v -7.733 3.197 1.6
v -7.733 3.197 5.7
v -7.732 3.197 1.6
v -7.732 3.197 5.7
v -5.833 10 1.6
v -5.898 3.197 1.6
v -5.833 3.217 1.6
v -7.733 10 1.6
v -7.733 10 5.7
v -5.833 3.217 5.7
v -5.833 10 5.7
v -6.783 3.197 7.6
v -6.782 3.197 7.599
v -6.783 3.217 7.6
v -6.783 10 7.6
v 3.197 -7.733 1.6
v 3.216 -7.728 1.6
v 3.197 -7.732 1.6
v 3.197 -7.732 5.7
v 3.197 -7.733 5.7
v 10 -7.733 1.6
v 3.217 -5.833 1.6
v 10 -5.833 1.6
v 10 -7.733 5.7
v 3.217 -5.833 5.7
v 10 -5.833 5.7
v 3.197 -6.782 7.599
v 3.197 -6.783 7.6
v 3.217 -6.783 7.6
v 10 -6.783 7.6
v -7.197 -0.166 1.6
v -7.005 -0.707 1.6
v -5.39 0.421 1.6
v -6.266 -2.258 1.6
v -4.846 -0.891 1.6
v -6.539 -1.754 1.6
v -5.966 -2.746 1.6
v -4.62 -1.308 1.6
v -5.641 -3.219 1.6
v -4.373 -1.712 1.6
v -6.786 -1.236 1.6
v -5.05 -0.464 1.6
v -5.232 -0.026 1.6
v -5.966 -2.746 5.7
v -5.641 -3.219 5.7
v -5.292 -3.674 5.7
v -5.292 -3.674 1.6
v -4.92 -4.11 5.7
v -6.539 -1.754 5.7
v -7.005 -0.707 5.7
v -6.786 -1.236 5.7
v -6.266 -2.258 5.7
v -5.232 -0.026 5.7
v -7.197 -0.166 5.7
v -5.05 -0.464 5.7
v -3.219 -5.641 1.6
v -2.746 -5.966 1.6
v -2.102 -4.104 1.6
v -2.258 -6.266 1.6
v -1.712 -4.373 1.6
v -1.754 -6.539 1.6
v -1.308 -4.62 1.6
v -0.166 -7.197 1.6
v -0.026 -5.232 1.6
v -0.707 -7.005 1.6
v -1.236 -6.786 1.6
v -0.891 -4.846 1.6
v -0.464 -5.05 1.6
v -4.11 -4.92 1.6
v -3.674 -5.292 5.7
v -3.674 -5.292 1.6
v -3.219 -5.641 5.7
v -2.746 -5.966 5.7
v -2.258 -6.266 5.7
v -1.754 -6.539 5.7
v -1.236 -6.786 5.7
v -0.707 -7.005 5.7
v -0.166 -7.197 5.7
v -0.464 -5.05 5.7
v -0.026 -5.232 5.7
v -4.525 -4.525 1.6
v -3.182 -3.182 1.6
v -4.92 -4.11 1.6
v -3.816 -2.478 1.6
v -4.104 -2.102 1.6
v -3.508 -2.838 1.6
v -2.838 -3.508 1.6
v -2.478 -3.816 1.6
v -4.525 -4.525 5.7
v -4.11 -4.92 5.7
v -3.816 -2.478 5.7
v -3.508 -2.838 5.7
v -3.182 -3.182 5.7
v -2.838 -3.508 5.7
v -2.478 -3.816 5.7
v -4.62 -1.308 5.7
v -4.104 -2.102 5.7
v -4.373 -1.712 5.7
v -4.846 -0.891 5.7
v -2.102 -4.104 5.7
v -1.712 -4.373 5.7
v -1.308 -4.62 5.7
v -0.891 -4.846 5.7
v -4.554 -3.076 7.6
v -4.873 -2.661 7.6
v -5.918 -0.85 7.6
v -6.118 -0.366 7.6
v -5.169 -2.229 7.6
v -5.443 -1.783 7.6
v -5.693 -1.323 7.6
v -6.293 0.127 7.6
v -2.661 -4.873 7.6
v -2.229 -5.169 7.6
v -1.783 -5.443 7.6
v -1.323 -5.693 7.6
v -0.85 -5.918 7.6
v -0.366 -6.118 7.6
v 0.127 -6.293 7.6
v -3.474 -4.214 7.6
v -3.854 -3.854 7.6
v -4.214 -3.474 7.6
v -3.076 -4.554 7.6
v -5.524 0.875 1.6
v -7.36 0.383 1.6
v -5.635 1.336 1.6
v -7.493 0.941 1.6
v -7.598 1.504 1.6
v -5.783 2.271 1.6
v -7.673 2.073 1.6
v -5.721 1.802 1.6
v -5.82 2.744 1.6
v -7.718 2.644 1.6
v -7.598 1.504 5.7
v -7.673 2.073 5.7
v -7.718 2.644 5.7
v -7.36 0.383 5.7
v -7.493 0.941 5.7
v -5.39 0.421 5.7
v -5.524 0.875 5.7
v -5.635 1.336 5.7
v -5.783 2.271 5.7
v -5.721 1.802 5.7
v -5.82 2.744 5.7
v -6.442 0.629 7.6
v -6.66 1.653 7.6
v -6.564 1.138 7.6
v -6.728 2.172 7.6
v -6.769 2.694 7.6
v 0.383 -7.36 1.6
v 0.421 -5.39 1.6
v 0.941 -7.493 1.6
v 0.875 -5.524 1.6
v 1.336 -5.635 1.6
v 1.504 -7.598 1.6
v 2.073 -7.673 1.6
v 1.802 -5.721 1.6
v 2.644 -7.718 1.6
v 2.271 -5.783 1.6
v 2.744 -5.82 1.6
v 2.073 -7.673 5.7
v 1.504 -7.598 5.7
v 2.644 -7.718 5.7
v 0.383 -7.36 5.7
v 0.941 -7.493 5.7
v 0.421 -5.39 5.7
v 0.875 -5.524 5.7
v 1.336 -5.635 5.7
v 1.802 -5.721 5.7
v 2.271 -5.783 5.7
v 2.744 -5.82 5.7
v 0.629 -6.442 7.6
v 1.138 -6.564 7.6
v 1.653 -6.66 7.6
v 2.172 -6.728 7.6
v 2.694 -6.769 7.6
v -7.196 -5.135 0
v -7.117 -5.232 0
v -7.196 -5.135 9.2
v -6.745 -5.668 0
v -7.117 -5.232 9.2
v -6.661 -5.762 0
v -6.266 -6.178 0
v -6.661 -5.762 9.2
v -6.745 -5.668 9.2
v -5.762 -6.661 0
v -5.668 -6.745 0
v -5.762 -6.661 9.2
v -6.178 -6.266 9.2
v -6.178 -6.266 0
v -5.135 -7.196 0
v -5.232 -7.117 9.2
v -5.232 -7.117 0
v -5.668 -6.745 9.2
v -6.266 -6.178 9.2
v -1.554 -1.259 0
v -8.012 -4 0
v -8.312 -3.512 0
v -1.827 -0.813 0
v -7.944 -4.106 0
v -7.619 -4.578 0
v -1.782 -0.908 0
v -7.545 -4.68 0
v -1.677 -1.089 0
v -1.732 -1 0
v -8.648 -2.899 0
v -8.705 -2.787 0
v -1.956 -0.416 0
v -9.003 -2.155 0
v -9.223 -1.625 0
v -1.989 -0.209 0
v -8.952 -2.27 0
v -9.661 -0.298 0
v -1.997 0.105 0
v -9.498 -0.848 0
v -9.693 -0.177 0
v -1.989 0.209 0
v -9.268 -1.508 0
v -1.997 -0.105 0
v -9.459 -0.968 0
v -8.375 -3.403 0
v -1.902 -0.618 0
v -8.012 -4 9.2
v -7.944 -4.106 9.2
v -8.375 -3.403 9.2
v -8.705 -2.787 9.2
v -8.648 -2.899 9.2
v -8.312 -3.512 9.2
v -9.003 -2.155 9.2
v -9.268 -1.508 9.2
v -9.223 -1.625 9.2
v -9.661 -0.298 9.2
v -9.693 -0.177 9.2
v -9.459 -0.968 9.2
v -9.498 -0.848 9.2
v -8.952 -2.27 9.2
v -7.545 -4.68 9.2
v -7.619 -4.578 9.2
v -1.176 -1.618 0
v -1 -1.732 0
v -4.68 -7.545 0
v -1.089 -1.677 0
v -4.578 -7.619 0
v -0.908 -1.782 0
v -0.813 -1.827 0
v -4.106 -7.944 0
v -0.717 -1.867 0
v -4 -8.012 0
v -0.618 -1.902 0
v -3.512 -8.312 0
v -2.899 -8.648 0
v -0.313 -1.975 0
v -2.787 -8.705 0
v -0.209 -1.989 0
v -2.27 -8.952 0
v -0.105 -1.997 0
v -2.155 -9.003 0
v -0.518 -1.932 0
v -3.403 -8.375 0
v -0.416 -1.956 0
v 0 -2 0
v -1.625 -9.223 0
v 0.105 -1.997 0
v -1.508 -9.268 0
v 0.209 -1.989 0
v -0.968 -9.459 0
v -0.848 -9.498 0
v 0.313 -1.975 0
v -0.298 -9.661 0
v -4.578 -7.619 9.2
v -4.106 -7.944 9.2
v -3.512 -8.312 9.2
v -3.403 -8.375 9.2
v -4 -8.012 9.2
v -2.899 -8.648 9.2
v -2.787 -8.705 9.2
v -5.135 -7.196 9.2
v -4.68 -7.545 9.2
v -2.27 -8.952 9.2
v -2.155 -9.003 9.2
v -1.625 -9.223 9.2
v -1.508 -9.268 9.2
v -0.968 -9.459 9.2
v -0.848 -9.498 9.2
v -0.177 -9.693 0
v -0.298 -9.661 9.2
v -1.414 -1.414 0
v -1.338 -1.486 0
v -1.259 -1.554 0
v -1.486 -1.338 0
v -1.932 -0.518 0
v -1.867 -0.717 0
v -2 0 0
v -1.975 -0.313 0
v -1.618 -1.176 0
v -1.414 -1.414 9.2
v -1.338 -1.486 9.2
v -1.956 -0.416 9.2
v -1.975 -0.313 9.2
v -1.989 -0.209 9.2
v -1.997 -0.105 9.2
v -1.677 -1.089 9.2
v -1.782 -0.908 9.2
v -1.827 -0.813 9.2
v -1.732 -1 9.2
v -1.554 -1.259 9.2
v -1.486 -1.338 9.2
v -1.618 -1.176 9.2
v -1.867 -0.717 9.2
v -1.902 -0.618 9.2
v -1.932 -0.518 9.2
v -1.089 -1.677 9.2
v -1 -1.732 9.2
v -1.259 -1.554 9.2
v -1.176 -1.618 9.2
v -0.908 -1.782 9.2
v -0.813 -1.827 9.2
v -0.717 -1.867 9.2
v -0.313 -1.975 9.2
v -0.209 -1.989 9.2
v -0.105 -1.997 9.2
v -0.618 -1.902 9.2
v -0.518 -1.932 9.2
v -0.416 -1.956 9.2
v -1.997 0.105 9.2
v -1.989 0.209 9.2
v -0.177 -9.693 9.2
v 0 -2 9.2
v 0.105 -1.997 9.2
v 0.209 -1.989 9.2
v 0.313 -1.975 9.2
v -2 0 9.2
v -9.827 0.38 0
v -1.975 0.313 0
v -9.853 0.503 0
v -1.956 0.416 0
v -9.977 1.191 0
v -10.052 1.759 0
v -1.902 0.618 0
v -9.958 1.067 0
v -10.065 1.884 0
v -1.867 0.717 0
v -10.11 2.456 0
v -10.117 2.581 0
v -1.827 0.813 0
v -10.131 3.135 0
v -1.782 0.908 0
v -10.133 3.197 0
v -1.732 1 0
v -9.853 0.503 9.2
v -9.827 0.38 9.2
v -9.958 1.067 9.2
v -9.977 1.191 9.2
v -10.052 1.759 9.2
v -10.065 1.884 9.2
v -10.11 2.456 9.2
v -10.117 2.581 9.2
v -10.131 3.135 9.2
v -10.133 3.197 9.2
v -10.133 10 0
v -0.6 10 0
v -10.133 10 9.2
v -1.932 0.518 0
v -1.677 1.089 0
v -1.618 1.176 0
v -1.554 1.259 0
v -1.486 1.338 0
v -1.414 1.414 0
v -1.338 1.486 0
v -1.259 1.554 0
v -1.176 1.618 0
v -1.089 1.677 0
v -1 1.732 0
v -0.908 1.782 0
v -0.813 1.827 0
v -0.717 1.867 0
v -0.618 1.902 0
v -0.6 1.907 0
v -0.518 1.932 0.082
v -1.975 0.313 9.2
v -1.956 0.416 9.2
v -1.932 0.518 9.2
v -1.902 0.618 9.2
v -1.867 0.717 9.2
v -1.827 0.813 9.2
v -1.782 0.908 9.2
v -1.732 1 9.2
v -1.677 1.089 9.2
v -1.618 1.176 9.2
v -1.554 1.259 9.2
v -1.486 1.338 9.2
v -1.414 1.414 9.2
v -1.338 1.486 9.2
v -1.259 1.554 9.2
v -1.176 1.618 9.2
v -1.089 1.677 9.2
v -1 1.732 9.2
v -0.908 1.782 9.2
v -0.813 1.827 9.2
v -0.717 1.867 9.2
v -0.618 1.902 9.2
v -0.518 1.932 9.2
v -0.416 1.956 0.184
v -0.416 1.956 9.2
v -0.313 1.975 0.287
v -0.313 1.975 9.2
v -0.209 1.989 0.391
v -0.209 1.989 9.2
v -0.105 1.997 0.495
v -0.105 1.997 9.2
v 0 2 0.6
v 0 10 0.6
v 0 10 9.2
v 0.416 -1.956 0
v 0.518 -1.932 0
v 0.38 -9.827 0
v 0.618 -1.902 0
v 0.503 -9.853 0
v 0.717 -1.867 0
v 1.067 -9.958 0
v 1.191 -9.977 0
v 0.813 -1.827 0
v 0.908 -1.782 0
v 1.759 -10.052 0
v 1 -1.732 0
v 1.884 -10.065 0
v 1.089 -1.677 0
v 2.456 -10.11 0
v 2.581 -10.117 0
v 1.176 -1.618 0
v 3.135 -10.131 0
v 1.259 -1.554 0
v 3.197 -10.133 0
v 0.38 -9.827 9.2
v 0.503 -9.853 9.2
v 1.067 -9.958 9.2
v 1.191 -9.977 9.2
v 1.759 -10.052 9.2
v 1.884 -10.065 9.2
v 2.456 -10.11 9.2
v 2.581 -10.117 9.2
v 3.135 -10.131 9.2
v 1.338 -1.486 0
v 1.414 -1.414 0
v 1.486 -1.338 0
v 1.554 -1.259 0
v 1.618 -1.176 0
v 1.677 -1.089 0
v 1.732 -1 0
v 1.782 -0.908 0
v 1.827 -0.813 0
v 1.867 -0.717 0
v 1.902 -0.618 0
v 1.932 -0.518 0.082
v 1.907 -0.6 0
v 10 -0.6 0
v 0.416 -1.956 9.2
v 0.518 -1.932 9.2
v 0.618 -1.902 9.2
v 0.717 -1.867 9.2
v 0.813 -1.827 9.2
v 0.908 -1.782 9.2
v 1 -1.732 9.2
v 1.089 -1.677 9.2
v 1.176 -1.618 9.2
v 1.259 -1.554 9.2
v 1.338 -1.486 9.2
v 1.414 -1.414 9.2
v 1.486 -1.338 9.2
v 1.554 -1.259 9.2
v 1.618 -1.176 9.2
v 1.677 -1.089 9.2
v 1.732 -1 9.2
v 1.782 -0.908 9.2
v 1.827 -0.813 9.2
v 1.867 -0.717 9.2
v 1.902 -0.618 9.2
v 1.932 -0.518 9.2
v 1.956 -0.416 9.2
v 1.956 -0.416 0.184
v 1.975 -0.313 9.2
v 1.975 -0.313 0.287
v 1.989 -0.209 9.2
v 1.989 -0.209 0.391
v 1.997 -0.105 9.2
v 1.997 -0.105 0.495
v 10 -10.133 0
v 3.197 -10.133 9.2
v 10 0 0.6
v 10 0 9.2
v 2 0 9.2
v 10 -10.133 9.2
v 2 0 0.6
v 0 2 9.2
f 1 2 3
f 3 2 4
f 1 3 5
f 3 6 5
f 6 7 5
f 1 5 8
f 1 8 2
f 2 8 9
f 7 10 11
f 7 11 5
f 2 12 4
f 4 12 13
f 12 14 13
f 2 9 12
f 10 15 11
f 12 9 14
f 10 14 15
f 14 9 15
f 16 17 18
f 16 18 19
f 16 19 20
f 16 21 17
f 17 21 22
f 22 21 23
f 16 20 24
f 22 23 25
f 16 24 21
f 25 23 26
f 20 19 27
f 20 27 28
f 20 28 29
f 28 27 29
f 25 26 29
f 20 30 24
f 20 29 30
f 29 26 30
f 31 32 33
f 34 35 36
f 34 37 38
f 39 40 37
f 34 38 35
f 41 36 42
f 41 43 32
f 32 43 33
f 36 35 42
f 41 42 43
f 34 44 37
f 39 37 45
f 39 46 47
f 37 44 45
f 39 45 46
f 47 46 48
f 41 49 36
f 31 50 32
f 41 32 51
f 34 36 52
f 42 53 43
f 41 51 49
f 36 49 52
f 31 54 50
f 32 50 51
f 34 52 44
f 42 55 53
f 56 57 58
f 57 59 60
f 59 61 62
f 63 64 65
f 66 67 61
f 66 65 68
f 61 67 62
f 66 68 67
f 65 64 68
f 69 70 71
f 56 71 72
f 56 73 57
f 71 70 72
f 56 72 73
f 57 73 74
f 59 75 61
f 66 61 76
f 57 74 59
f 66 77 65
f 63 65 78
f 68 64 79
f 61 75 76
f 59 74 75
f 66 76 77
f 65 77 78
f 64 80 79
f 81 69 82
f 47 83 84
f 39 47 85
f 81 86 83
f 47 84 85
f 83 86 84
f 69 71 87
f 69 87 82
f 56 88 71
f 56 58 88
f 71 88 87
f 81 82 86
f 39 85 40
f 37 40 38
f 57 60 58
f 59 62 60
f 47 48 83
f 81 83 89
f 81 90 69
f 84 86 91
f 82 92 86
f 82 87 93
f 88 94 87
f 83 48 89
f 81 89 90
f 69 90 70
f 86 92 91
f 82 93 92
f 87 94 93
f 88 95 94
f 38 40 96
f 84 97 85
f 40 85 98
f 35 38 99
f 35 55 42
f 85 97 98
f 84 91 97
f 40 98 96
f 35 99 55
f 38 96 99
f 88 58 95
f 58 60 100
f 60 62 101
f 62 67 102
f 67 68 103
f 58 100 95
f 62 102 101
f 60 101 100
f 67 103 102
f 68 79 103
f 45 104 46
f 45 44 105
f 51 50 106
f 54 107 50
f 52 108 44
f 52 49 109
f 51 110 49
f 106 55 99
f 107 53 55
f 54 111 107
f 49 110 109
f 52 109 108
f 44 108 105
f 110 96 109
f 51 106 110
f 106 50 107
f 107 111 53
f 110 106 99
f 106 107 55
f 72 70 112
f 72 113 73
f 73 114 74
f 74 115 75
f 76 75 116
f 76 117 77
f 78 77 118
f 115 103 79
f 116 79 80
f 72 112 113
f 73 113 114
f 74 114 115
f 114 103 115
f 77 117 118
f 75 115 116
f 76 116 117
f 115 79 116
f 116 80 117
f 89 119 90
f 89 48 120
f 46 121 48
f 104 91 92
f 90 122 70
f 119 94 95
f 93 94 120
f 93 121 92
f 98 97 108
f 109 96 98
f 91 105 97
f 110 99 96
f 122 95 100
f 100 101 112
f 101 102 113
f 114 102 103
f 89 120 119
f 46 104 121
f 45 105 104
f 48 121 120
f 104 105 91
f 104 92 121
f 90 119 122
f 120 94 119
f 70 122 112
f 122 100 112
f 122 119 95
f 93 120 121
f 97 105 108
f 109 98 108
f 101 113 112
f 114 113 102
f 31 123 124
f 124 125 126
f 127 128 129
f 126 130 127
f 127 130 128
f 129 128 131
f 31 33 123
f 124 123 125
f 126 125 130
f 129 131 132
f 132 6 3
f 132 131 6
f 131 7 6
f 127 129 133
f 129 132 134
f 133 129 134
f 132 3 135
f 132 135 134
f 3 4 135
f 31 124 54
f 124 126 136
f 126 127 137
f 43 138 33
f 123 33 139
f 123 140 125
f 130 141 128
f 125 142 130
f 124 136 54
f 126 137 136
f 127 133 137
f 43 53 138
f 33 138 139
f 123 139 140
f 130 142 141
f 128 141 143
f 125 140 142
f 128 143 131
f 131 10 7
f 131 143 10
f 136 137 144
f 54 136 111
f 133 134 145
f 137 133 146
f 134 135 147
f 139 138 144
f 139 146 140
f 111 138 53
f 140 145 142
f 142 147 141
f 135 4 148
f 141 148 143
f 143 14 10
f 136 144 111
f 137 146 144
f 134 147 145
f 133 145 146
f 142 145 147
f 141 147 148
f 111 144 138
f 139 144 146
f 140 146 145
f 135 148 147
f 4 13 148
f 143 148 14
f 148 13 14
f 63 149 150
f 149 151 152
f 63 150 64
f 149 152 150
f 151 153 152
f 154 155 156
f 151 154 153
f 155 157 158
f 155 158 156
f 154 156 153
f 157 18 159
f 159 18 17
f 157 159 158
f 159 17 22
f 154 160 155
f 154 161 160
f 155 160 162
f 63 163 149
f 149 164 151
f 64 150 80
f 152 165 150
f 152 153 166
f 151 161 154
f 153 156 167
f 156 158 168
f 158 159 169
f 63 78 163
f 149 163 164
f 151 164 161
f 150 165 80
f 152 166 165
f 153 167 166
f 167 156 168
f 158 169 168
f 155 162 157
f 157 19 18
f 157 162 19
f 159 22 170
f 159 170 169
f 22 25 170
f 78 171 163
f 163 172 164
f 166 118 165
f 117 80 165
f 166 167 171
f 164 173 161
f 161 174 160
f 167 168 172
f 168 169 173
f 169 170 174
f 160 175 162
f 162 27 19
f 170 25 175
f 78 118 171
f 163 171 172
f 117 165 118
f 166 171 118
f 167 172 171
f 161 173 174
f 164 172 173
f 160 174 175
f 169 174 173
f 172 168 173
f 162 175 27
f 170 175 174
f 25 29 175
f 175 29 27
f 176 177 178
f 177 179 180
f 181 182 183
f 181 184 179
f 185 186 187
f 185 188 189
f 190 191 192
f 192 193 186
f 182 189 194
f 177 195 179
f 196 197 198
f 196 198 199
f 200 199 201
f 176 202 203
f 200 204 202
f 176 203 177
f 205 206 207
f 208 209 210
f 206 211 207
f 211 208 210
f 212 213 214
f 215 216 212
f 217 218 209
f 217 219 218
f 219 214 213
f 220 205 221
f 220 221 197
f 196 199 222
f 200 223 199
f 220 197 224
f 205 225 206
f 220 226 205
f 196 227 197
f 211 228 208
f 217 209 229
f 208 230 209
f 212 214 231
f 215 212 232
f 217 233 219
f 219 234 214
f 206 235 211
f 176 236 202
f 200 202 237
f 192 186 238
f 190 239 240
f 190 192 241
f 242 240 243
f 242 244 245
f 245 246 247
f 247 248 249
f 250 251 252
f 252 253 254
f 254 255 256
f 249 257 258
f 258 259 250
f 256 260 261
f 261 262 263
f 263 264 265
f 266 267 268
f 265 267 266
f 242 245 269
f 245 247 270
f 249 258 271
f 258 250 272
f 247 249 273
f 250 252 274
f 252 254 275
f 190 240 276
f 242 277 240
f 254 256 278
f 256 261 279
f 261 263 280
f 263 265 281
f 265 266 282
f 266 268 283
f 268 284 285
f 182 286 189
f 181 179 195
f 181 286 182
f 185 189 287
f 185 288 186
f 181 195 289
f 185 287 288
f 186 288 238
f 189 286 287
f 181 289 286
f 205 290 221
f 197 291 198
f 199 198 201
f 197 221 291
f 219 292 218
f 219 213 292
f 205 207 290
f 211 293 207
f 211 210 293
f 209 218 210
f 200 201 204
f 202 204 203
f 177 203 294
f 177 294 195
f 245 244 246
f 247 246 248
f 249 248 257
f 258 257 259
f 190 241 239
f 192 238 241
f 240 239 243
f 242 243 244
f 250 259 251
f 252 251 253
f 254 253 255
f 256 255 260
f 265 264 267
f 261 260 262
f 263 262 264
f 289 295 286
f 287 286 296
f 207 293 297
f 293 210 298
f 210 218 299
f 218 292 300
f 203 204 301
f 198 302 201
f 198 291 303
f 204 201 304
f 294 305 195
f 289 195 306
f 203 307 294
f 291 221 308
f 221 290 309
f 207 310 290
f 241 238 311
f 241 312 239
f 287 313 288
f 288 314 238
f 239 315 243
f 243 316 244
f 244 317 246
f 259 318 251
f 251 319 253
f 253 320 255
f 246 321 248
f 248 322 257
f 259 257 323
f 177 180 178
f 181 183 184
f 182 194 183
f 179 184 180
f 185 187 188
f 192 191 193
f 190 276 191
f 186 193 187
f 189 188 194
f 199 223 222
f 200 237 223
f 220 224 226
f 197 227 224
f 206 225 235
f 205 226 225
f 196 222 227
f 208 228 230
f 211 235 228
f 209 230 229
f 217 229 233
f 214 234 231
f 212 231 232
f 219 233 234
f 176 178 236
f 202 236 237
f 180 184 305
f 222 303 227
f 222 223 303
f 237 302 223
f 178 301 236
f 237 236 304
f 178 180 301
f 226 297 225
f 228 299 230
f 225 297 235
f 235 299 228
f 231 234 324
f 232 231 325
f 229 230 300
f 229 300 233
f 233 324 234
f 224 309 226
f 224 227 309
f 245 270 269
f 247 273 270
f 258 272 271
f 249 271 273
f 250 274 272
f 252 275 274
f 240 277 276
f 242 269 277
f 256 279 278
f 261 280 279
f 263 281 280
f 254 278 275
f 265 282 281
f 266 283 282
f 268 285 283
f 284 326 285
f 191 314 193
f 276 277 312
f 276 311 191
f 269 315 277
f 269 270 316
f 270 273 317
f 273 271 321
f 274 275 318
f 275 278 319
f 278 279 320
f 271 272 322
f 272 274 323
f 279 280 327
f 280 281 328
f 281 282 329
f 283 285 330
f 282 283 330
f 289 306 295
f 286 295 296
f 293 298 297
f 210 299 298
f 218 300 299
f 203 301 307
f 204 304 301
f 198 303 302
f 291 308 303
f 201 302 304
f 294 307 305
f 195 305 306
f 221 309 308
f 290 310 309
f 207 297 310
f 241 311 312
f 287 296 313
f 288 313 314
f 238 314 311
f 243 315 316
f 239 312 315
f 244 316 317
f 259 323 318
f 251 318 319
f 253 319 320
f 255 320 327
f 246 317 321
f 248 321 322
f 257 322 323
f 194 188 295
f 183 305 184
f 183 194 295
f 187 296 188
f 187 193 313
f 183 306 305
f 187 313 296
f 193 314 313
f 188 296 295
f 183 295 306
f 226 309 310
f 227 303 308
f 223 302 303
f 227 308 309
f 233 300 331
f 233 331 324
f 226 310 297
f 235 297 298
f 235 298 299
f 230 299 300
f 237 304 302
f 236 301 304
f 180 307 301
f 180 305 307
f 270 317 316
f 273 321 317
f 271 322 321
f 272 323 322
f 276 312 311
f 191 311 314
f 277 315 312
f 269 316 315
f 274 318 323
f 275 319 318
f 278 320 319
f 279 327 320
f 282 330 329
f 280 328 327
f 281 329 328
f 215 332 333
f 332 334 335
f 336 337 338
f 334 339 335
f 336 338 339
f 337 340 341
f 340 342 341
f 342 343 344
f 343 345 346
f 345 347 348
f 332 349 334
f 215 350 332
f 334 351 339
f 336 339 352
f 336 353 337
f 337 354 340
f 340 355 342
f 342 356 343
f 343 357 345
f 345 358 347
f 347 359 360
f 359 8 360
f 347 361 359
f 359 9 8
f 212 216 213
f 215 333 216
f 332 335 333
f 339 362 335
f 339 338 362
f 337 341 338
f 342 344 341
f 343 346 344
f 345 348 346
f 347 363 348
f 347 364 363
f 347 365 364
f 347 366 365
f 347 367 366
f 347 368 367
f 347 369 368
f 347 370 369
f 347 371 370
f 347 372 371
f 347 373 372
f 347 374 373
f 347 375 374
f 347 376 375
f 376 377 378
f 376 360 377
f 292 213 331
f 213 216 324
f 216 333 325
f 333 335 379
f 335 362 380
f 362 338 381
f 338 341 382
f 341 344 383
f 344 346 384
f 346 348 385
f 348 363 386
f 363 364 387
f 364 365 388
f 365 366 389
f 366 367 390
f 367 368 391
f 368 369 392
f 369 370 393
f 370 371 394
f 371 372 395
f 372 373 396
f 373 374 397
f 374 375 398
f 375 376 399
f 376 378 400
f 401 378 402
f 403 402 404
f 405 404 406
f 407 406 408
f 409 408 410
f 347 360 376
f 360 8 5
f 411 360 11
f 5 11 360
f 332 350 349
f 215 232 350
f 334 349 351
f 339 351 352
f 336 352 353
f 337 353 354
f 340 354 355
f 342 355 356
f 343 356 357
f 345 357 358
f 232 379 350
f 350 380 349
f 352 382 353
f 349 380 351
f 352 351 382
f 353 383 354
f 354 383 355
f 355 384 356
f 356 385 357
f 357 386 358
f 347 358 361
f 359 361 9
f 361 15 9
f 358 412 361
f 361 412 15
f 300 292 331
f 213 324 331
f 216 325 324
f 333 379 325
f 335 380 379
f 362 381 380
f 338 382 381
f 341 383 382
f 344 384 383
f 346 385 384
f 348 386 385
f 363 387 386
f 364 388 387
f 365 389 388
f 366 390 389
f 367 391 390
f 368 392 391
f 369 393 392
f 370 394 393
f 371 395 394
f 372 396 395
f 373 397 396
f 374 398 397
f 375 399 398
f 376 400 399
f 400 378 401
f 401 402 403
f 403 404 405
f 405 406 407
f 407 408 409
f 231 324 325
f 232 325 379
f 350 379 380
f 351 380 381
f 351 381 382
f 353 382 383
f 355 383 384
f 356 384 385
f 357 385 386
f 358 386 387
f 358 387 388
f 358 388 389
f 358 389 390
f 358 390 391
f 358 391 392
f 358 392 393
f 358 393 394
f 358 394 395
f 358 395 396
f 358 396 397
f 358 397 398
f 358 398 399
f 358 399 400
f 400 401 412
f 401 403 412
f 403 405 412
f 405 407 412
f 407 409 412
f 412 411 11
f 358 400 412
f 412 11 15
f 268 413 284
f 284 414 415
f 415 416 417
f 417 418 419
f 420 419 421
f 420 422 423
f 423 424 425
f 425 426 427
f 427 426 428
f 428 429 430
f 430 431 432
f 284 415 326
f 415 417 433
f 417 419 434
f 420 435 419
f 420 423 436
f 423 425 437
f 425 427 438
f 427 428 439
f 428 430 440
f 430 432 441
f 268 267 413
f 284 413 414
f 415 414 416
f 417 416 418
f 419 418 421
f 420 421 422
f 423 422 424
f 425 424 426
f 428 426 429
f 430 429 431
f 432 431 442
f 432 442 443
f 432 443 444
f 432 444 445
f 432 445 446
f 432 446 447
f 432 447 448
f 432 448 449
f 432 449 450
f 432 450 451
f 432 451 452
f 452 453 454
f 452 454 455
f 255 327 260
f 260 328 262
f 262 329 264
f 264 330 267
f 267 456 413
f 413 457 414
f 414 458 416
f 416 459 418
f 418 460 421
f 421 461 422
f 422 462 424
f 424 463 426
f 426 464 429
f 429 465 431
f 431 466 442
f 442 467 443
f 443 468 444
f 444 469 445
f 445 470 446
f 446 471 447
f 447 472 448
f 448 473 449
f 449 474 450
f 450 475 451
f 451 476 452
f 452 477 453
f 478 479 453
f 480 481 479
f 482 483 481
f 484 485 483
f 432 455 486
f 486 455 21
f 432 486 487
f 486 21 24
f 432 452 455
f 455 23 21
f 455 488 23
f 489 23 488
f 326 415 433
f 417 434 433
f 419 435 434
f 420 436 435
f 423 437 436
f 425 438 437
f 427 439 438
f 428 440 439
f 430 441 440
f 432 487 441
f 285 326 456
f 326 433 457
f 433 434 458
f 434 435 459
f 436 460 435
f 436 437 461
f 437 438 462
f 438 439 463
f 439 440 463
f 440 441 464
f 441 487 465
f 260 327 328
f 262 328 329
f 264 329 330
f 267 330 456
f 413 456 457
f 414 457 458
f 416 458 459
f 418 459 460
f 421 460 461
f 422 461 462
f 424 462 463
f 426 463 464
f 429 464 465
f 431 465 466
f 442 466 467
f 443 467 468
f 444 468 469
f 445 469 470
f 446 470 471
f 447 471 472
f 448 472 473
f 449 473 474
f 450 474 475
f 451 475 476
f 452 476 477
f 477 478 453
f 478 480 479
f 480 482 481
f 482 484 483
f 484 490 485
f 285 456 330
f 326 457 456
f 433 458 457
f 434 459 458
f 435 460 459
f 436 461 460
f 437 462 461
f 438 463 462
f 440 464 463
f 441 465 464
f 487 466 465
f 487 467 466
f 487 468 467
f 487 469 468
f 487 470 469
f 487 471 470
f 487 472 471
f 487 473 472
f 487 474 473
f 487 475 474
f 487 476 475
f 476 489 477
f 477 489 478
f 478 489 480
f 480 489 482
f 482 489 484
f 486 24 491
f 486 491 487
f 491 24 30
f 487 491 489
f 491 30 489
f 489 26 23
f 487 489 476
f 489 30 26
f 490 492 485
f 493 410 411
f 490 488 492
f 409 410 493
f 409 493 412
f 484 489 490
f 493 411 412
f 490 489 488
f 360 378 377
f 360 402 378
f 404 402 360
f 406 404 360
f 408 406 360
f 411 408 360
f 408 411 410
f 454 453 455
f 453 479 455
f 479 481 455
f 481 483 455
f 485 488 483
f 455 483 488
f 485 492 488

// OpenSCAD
// ============================================================
// Zip tie corner blocks — a corner shoe that carries a zip
// tie around a square object without letting it grab the
// corner
//
// A zip tie pulled around a square object touches it at four
// points, one per corner. The tie tries to be a circle, the
// object is a square, and what is left is a squircle with the
// square inscribed in it: all the tension lands on four
// corners, and the tie itself is what digs into them.
//
// This block sits on one corner. It is a thick right angle
// with two flat inner faces that bear on the object's two
// flats, and a curved channel running through it that the tie
// is threaded through. The tie is still allowed to take the
// curve it wants — it just takes it inside the channel, and
// the block turns that curve into pressure spread along the
// two flats. Four of them make the tie a rounded square
// instead of a squircle.
//
// A circular relief is knocked out of the inner corner so the
// block never bears on the corner itself. A printed internal
// corner is never sharp, and a real corner may carry a weld, a
// seam, an extrusion line, a fold of tape or a dent. Relieved,
// the block seats on the two flats and ignores all of it.
//
// The channel is a tunnel rather than an open groove, so the
// tie cannot fall out while everything is still slack. Thread
// the tail through all four blocks before feeding it into the
// head.
//
// THE ONE THING THAT IS NOT OBVIOUS: a gentler bend passes
// CLOSER to the corner. The tie's path has to leave each block
// running parallel to the flat it came off, so the corner arc
// is tangent to two lines offset from the flats. Grow that
// arc's radius and it stops hugging the corner and starts
// cutting across it — at bend_radius = tie_offset * (2 +
// sqrt(2)) the arc would pass straight through the corner
// itself. So the block buys room for a bigger radius the only
// way it can: by standing the whole channel further off the
// flats. A gentle bend is a thick block, and that is a
// straight trade, not a bug. face_offset is echoed so the cost
// is visible before printing.
//
// Modeled in its print orientation: corner edge vertical, one
// flat face on the plate.
//
// This source emits ONE block. Print four.
//
// A TPU sleeve for the inner faces sits beside this file. It
// is optional — the block works bare — and it adds grip and
// keeps the block's edges off the finish. Fitted, it stands
// the block off each flat by its own pad thickness, so the tie
// rides that much higher than the offset echoed here. Its
// source carries copies of the parameters below that decide
// how big it has to be, so change one of those and change it
// in both files.
//
// PRINT NOTES:
// - PETG, PLA or ASA, no supports needed.
// - Print as modeled, flat face down, corner edge vertical.
//   The channel roof is a gable at 26.6 deg from vertical, so
//   the tunnel needs no bridging, and every other face in the
//   part is vertical, on the plate, or facing up.
// - The layers then run across the block rather than along the
//   channel, which puts the tie's pull in the layer plane
//   instead of across the layer lines.
// - 3 or 4 perimeters and 30% infill or more. The corner web
//   between the relief and the channel is the piece the tie
//   presses on, and it is only corner_web thick.
// - The bottom edge of each inner face is chamfered at 45 deg
//   so an elephant foot cannot rock the block off the flats.
// - The tie's head does not fit through the channel and is not
//   meant to. Thread the tail through all four blocks, then
//   into the head, and let the head sit on a flat between two
//   blocks.
// ============================================================

// ===== MEASURE THESE ON YOUR ACTUAL ZIP TIE =====
// Both are outside-the-solid measurements on the strap, so plain calipers
// reach them. Each names the caliper it needs by the size printed on the tool:
// a 6 in caliper stops at 150 mm, an 8 in at 200 mm, a 12 in at 300 mm

// Width of the tie's strap (mm) — outside jaws across the flat of the strap,
// 6 in caliper. Measure the plain strap well away from the head, and away from
// the ratchet teeth if they stand proud. This is the tall dimension of the
// channel, since the tie wraps the corner on its flat
tie_width = 3.5;

// Thickness of the tie's strap (mm) — outside jaws on the edge of the strap,
// 6 in caliper. Take it over the ratchet teeth, not between them: the teeth
// are what has to clear the channel. Nominal 4.8 mm ties run anywhere from
// 1.1 to 1.6 mm depending on how heavy the tie is, so measure the tie you
// actually have rather than trusting the packet
tie_thickness = 1.3;

// ===== DECIDE THESE =====
// Choices, not measurements — the block is whatever these make it

// Radius the tie is bent to at the corner, at the middle of the strap (mm).
// This is the knob the whole part is built around. Bigger is a gentler bend
// and a thicker block: see the note in the header. It cannot go below
// min_bend_radius, which is echoed below
bend_radius = 10;

// How far the block reaches along each flat, measured from the corner (mm).
// This is the load-spreading dimension — everything past the corner relief is
// bearing surface. It also sets the shortest object the blocks fit on, since
// two of them have to sit on one flat without meeting
leg_length = 10;

// Diameter of the relief knocked out of the inner corner (mm). It has to
// swallow the printed fillet in the block's own internal corner plus whatever
// the object's corner is carrying. 4 mm is plenty for a clean extrusion or a
// planed edge; open it up for a weld bead or a mangled corner
corner_relief_d = 4;

// ===== TUNE THESE =====
tie_clearance = 0.6; // Added to both channel dimensions (mm) — the tie has to slide through a 90 deg bend, so it wants more slack than a press fit
corner_web = 2.5; // Material between the corner relief and the channel (mm) — the tie pulls against this face, so it is the load path, not a skin
outer_wall = 2.4; // Material outside the channel (mm) — the outer flange of each leg
deck = 1.6; // Material under the channel floor and over the gable peak (mm) — the block's top and bottom skins
foot_chamfer = 0.6; // Break along the bottom edge of both inner faces (mm), to clear an elephant foot

$fn = 120;

// ===== DERIVED =====
slot_w = tie_thickness + tie_clearance; // Channel across the strap's thickness, radially
slot_h = tie_width + tie_clearance; // Channel across the strap's width, vertically
relief_r = corner_relief_d / 2;

// Rise of the gable over the channel. It is the full slot width against a half
// slot width of run, so each roof face sits at 26.6 deg from vertical whatever
// the tie measures — no value of tie_thickness can turn this into a bridge
gable = slot_w;

block_h = 2 * deck + slot_h + gable;

// Tightest bend the corner can hold: the arc is concentric with the corner,
// and the material inside it is exactly the relief plus the web
min_bend_radius = slot_w / 2 + relief_r + corner_web;

// Standoff of the middle of the strap from each flat. Solved from the corner
// instead of chosen: the middle of the arc runs
// sqrt(2) * tie_offset - (sqrt(2) - 1) * bend_radius from the corner, and half
// a slot in from that is the wall that has to leave the relief and the web
// intact. A bigger bend_radius pushes the whole channel off the flats to pay
// for itself
tie_offset = ((sqrt(2) - 1) * bend_radius + slot_w / 2 + relief_r + corner_web) / sqrt(2);

// Material between the channel and each flat, and so the height the tie stands
// off the object along the runs between blocks
face_offset = tie_offset - slot_w / 2;

leg_thickness = face_offset + slot_w + outer_wall;

// Where the arc's centre sits, on the diagonal inside the object, and equally
// the distance from the corner to each tangent point. The channel is straight
// from there out to the mouth, which is what makes the tie leave parallel to
// the flat
arc_c = bend_radius - tie_offset;

straight_run = leg_length - arc_c;
contact_length = leg_length - relief_r;

// Shortest flat the blocks fit on: two of them, corner to corner, with nothing
// left between. Anything at or near this is too short in practice — leave room
// for the tie's head as well
min_object_side = 2 * leg_length;

// What four blocks add to the tie's loop over the bare perimeter of the
// object: four 90 deg arcs instead of four sharp corners, less the straight
// run each arc replaces
tie_path_extra = 2 * PI * bend_radius - 8 * arc_c;

mouth_over = 1; // Overshoot past the end faces, so the channel cuts through cleanly
seam = 0.02; // Overlap where the straight runs meet the arc

// Channel cross section, drawn in the plane the path is swept along: x is
// across the strap's thickness, y is up. Square where the tie sits, gabled
// above it so the roof carries itself
channel_profile = [
  [-slot_w / 2, 0],
  [slot_w / 2, 0],
  [slot_w / 2, slot_h],
  [0, slot_h + gable],
  [-slot_w / 2, slot_h],
];

echo(str("block = ", leg_thickness + leg_length, " x ", leg_thickness + leg_length, " x ", block_h, " mm"));
echo(str("leg thickness = ", leg_thickness, " mm"));
echo(str("channel = ", slot_w, " mm across the strap by ", slot_h, " mm tall"));
echo(str("tie stands off each flat by = ", face_offset, " mm"));
echo(str("bearing length per flat = ", contact_length, " mm"));
echo(str("straight run at each mouth = ", straight_run, " mm"));
echo(str("smallest bend_radius this tie and relief allow = ", min_bend_radius, " mm"));
echo(str("shortest object flat two blocks fit on = ", min_object_side, " mm"));
echo(str("tie loop needed = 4 x the object's side + ", tie_path_extra, " mm"));

assert(bend_radius >= min_bend_radius, "bend_radius is tighter than the corner can hold — the arc would cut into the relief. Raise bend_radius to min_bend_radius or above, or take it out of corner_relief_d or corner_web");
assert(straight_run > 0, "leg_length stops short of the tangent point, so the channel would open mid-bend and aim the tie across the flat instead of along it — lengthen leg_length or reduce bend_radius");
assert(contact_length > 0, "the corner relief has eaten the whole bearing face — lengthen leg_length or reduce corner_relief_d");
assert(corner_web > 0, "corner_web has to be positive — the tie pulls against it");
assert(slot_w > 0 && slot_h > 0, "tie_clearance has closed the channel — it cannot be more negative than the tie is thick");
assert(foot_chamfer < face_offset, "the foot chamfer has reached the channel — reduce foot_chamfer, or raise bend_radius to stand the channel further off the flats");
assert(foot_chamfer < deck, "the foot chamfer has reached the channel floor — reduce foot_chamfer or add deck");
assert(relief_r < leg_thickness, "the corner relief is wider than the block is thick — reduce corner_relief_d");

// One leg's straight run, in plan. The other leg is this one mirrored across
// the diagonal, so the two can never drift apart
module channel_leg_2d() {
  translate([-tie_offset - slot_w / 2, arc_c - seam])
    square([slot_w, leg_length + mouth_over - arc_c + seam]);
}

// The 90 deg bend, in plan: a quarter of an annulus centred on the diagonal,
// tangent to both straight runs where it meets them
module channel_arc_2d() {
  reach = bend_radius + slot_w;
  translate([arc_c, arc_c])
    intersection() {
      difference() {
        circle(r = bend_radius + slot_w / 2);
        circle(r = bend_radius - slot_w / 2);
      }
      translate([-reach, -reach])
        square(reach);
    }
}

module channel_2d() {
  channel_leg_2d();
  mirror([1, -1, 0])
    channel_leg_2d();
  channel_arc_2d();
}

// The skin between one leg's channel and the flat it lies against
module inner_skin_2d() {
  translate([-face_offset, 0])
    square([face_offset, leg_length]);
}

// Plan of the block: the channel wrapped in material, clipped back to the
// legs, with the object's own quadrant and the corner relief taken out. The
// disc fills everything inside the bend, which is where the corner web comes
// from — it is tangent to both inner walls, so it never reaches past them
module body_2d() {
  difference() {
    intersection() {
      union() {
        offset(r = outer_wall)
          channel_2d();
        inner_skin_2d();
        mirror([1, -1, 0])
          inner_skin_2d();
        translate([arc_c, arc_c])
          circle(r = bend_radius - slot_w / 2);
      }
      translate([-leg_thickness, -leg_thickness])
        square(leg_thickness + leg_length);
    }

    // The object's corner occupies this quadrant
    square(leg_length + 1);

    // Corner relief, so the block bears on the flats and never on the corner
    circle(r = relief_r);
  }
}

module channel_leg_3d() {
  translate([-tie_offset, leg_length + mouth_over, deck])
    rotate([90, 0, 0])
      linear_extrude(leg_length + mouth_over - arc_c + seam)
        polygon(channel_profile);
}

module channel_arc_3d() {
  translate([arc_c, arc_c, deck])
    rotate([0, 0, 180])
      rotate_extrude(angle = 90)
        translate([bend_radius, 0])
          polygon(channel_profile);
}

module channel_3d() {
  channel_leg_3d();
  mirror([1, -1, 0])
    channel_leg_3d();
  channel_arc_3d();
}

// Chamfer along the bottom edge of one inner face. Its run and rise are the
// same expression, so it is 45 deg whatever foot_chamfer is set to
module foot_chamfer_3d() {
  translate([0, leg_length + 1, 0])
    rotate([90, 0, 0])
      linear_extrude(leg_length + 1)
        polygon([
          [0, 0],
          [-foot_chamfer, 0],
          [0, foot_chamfer]
        ]);
}

module zip_tie_corner_block() {
  difference() {
    linear_extrude(block_h)
      body_2d();
    channel_3d();
    foot_chamfer_3d();
    mirror([1, -1, 0])
      foot_chamfer_3d();
  }
}

zip_tie_corner_block();
